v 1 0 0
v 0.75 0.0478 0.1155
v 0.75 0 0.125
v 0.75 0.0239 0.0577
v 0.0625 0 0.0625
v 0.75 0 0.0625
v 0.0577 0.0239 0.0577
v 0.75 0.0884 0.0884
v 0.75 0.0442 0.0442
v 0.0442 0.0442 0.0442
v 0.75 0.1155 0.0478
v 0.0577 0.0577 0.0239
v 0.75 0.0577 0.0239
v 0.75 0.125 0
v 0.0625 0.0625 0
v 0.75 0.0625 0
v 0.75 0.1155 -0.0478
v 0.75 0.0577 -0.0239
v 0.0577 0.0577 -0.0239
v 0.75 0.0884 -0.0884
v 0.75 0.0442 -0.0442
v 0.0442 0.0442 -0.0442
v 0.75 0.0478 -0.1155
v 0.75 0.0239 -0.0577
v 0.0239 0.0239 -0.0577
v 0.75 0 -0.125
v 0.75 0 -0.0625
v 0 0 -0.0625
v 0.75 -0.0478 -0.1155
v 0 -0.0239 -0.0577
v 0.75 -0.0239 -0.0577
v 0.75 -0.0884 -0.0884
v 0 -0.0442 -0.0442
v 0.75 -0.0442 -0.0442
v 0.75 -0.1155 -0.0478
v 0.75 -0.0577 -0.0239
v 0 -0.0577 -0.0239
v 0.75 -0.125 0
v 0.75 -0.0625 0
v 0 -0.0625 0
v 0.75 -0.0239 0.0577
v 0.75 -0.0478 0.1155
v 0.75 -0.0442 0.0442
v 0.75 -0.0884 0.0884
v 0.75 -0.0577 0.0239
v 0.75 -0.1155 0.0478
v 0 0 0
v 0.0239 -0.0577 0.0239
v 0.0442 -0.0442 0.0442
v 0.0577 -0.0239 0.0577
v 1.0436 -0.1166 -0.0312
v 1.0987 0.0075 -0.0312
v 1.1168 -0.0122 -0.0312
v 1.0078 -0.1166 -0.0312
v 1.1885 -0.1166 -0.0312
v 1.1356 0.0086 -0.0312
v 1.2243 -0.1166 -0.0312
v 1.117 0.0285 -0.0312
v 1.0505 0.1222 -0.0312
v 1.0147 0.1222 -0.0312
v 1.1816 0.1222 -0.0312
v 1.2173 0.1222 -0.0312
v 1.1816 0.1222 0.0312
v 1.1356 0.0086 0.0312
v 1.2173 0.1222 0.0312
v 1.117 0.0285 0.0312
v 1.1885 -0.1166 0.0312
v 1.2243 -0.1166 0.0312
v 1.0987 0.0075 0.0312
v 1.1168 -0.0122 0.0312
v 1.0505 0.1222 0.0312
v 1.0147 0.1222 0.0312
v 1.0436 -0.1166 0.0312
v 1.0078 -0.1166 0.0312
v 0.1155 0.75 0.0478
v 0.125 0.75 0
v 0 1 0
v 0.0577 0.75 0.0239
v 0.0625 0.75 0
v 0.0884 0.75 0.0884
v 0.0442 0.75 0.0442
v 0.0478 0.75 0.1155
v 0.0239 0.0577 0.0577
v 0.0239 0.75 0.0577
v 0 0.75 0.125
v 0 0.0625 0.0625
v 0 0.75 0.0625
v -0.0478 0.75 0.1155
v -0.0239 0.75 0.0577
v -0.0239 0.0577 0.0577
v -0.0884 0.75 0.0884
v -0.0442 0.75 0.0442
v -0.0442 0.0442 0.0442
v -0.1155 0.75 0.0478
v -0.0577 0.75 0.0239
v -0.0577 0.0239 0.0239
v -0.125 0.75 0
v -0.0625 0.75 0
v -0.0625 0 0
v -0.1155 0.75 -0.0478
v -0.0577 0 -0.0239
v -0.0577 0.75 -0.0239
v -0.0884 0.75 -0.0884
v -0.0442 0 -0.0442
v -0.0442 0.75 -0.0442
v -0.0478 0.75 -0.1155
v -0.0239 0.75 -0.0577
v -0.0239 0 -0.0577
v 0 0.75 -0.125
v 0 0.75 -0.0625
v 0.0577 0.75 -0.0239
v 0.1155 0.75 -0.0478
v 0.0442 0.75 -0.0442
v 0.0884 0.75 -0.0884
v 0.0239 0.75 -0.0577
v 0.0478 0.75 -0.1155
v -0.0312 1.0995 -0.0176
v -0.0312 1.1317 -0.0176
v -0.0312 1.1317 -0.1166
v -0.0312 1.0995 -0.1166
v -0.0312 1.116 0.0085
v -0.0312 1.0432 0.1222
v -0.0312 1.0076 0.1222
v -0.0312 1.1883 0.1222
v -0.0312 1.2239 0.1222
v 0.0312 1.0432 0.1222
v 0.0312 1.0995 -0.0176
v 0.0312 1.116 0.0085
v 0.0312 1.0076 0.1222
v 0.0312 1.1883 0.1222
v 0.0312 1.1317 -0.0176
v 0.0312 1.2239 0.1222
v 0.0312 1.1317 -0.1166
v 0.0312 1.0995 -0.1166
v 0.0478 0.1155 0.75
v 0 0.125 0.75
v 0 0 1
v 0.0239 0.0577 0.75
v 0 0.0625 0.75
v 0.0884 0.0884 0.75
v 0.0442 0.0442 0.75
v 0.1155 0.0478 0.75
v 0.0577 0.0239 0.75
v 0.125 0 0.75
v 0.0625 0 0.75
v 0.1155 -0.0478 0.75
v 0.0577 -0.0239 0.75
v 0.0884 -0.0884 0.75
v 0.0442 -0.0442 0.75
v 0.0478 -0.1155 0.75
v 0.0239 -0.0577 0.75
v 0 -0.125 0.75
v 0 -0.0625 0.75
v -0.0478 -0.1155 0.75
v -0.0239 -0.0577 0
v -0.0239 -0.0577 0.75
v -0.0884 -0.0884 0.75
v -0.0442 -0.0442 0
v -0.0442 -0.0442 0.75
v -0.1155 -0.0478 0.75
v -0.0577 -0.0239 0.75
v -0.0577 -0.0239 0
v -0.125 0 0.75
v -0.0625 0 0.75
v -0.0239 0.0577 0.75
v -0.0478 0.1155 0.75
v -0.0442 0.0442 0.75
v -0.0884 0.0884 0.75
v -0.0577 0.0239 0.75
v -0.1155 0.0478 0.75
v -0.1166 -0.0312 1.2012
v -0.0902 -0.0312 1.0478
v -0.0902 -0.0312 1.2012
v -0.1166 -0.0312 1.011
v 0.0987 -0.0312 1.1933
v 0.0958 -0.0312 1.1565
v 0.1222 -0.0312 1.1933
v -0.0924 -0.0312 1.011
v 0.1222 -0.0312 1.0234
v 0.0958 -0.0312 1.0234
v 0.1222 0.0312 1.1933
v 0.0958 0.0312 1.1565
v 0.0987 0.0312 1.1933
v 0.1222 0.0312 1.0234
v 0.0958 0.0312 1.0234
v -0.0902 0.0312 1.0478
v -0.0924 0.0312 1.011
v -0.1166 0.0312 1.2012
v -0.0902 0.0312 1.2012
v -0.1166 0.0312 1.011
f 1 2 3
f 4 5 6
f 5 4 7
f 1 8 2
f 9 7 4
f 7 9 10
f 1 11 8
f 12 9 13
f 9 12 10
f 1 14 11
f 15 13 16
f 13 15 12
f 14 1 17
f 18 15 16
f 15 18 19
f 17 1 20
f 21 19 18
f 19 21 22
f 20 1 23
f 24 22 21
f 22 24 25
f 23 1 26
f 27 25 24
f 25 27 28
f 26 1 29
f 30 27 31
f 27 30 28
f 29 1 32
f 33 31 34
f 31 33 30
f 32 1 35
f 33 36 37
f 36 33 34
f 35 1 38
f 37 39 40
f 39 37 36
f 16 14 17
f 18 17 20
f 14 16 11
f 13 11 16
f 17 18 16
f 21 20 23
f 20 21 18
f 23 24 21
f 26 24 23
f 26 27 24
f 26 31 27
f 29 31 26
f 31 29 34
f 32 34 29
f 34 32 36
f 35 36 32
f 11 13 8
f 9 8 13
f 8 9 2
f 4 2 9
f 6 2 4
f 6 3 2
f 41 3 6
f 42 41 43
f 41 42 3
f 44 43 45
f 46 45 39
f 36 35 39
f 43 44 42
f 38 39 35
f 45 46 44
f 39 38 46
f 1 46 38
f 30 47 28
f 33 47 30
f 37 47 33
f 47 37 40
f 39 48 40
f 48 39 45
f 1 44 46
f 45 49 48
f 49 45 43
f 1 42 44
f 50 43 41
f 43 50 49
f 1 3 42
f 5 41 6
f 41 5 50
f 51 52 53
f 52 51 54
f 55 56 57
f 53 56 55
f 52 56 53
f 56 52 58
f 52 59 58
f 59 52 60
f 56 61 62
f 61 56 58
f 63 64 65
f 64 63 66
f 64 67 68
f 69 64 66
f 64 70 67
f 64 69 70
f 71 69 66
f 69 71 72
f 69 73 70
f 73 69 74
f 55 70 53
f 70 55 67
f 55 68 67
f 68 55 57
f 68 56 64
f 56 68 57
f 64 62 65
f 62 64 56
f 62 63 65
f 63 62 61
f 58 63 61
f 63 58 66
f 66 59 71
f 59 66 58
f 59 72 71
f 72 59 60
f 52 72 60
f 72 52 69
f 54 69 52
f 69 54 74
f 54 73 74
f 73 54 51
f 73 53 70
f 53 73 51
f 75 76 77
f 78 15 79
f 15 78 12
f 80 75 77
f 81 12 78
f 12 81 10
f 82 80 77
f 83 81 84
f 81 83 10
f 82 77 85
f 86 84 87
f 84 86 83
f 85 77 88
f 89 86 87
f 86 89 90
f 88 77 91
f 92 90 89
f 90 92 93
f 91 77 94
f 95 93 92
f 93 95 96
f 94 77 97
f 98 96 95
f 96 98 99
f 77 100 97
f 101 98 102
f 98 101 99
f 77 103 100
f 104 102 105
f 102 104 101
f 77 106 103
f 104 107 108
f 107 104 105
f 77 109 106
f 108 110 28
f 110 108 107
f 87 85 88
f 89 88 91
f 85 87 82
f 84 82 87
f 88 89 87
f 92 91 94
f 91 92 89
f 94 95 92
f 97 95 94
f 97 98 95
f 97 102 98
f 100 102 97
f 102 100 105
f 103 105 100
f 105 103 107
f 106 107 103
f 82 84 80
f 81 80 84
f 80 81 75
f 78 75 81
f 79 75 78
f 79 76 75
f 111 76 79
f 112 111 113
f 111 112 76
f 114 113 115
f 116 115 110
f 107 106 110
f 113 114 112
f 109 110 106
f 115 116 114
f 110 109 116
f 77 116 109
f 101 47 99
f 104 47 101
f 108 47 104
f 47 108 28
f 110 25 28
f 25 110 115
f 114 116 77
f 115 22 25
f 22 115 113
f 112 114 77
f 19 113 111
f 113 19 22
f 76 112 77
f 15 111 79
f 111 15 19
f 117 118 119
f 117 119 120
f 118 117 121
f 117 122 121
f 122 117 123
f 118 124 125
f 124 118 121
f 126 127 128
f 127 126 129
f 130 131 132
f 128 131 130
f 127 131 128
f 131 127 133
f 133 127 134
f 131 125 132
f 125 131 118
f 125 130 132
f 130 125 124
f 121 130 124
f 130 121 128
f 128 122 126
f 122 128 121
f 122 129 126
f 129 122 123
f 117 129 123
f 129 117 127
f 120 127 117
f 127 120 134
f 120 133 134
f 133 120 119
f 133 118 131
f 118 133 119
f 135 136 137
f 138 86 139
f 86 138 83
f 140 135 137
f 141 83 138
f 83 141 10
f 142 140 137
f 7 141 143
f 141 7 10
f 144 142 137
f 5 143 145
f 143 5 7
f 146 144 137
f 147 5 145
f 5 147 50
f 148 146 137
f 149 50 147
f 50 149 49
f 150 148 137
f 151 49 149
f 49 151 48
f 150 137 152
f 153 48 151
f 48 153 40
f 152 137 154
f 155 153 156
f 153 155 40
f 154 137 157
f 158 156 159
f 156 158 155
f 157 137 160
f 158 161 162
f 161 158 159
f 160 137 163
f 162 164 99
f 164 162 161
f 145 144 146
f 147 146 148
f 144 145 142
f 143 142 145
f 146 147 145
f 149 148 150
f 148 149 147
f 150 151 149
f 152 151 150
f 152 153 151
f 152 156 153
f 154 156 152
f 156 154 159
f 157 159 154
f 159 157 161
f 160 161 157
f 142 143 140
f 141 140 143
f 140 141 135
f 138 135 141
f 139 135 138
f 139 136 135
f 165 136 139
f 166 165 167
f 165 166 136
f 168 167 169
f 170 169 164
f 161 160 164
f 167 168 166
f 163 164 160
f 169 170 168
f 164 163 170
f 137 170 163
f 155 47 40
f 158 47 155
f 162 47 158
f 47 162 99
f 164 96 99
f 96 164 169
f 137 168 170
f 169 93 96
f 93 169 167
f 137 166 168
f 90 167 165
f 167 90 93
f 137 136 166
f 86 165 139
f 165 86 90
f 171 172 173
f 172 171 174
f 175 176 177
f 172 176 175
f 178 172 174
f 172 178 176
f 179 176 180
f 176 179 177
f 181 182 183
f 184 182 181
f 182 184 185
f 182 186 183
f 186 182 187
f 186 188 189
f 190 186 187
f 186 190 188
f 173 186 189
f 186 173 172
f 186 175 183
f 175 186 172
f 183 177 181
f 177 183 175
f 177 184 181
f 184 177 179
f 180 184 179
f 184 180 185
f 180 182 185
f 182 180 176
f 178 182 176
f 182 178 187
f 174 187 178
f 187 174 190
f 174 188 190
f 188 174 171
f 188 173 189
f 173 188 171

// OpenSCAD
$fn=16;

module axis(label) {
	scale(1 / 16) {
		// arrow
		rotate([0, 90, 0])
		rotate_extrude()
		polygon([ [0, 0], [0, 16], [2, 12], [1, 12], [1, 0] ]);
		
		// label
		translate([16, 0, 0])
		linear_extrude(1, center=true)
		text(label, 4, valign="center");
	}
}

rotate([ 0,   0,   0]) axis("X");
rotate([90,   0,  90]) axis("Y");
rotate([ 0, -90, -90]) axis("Z");
